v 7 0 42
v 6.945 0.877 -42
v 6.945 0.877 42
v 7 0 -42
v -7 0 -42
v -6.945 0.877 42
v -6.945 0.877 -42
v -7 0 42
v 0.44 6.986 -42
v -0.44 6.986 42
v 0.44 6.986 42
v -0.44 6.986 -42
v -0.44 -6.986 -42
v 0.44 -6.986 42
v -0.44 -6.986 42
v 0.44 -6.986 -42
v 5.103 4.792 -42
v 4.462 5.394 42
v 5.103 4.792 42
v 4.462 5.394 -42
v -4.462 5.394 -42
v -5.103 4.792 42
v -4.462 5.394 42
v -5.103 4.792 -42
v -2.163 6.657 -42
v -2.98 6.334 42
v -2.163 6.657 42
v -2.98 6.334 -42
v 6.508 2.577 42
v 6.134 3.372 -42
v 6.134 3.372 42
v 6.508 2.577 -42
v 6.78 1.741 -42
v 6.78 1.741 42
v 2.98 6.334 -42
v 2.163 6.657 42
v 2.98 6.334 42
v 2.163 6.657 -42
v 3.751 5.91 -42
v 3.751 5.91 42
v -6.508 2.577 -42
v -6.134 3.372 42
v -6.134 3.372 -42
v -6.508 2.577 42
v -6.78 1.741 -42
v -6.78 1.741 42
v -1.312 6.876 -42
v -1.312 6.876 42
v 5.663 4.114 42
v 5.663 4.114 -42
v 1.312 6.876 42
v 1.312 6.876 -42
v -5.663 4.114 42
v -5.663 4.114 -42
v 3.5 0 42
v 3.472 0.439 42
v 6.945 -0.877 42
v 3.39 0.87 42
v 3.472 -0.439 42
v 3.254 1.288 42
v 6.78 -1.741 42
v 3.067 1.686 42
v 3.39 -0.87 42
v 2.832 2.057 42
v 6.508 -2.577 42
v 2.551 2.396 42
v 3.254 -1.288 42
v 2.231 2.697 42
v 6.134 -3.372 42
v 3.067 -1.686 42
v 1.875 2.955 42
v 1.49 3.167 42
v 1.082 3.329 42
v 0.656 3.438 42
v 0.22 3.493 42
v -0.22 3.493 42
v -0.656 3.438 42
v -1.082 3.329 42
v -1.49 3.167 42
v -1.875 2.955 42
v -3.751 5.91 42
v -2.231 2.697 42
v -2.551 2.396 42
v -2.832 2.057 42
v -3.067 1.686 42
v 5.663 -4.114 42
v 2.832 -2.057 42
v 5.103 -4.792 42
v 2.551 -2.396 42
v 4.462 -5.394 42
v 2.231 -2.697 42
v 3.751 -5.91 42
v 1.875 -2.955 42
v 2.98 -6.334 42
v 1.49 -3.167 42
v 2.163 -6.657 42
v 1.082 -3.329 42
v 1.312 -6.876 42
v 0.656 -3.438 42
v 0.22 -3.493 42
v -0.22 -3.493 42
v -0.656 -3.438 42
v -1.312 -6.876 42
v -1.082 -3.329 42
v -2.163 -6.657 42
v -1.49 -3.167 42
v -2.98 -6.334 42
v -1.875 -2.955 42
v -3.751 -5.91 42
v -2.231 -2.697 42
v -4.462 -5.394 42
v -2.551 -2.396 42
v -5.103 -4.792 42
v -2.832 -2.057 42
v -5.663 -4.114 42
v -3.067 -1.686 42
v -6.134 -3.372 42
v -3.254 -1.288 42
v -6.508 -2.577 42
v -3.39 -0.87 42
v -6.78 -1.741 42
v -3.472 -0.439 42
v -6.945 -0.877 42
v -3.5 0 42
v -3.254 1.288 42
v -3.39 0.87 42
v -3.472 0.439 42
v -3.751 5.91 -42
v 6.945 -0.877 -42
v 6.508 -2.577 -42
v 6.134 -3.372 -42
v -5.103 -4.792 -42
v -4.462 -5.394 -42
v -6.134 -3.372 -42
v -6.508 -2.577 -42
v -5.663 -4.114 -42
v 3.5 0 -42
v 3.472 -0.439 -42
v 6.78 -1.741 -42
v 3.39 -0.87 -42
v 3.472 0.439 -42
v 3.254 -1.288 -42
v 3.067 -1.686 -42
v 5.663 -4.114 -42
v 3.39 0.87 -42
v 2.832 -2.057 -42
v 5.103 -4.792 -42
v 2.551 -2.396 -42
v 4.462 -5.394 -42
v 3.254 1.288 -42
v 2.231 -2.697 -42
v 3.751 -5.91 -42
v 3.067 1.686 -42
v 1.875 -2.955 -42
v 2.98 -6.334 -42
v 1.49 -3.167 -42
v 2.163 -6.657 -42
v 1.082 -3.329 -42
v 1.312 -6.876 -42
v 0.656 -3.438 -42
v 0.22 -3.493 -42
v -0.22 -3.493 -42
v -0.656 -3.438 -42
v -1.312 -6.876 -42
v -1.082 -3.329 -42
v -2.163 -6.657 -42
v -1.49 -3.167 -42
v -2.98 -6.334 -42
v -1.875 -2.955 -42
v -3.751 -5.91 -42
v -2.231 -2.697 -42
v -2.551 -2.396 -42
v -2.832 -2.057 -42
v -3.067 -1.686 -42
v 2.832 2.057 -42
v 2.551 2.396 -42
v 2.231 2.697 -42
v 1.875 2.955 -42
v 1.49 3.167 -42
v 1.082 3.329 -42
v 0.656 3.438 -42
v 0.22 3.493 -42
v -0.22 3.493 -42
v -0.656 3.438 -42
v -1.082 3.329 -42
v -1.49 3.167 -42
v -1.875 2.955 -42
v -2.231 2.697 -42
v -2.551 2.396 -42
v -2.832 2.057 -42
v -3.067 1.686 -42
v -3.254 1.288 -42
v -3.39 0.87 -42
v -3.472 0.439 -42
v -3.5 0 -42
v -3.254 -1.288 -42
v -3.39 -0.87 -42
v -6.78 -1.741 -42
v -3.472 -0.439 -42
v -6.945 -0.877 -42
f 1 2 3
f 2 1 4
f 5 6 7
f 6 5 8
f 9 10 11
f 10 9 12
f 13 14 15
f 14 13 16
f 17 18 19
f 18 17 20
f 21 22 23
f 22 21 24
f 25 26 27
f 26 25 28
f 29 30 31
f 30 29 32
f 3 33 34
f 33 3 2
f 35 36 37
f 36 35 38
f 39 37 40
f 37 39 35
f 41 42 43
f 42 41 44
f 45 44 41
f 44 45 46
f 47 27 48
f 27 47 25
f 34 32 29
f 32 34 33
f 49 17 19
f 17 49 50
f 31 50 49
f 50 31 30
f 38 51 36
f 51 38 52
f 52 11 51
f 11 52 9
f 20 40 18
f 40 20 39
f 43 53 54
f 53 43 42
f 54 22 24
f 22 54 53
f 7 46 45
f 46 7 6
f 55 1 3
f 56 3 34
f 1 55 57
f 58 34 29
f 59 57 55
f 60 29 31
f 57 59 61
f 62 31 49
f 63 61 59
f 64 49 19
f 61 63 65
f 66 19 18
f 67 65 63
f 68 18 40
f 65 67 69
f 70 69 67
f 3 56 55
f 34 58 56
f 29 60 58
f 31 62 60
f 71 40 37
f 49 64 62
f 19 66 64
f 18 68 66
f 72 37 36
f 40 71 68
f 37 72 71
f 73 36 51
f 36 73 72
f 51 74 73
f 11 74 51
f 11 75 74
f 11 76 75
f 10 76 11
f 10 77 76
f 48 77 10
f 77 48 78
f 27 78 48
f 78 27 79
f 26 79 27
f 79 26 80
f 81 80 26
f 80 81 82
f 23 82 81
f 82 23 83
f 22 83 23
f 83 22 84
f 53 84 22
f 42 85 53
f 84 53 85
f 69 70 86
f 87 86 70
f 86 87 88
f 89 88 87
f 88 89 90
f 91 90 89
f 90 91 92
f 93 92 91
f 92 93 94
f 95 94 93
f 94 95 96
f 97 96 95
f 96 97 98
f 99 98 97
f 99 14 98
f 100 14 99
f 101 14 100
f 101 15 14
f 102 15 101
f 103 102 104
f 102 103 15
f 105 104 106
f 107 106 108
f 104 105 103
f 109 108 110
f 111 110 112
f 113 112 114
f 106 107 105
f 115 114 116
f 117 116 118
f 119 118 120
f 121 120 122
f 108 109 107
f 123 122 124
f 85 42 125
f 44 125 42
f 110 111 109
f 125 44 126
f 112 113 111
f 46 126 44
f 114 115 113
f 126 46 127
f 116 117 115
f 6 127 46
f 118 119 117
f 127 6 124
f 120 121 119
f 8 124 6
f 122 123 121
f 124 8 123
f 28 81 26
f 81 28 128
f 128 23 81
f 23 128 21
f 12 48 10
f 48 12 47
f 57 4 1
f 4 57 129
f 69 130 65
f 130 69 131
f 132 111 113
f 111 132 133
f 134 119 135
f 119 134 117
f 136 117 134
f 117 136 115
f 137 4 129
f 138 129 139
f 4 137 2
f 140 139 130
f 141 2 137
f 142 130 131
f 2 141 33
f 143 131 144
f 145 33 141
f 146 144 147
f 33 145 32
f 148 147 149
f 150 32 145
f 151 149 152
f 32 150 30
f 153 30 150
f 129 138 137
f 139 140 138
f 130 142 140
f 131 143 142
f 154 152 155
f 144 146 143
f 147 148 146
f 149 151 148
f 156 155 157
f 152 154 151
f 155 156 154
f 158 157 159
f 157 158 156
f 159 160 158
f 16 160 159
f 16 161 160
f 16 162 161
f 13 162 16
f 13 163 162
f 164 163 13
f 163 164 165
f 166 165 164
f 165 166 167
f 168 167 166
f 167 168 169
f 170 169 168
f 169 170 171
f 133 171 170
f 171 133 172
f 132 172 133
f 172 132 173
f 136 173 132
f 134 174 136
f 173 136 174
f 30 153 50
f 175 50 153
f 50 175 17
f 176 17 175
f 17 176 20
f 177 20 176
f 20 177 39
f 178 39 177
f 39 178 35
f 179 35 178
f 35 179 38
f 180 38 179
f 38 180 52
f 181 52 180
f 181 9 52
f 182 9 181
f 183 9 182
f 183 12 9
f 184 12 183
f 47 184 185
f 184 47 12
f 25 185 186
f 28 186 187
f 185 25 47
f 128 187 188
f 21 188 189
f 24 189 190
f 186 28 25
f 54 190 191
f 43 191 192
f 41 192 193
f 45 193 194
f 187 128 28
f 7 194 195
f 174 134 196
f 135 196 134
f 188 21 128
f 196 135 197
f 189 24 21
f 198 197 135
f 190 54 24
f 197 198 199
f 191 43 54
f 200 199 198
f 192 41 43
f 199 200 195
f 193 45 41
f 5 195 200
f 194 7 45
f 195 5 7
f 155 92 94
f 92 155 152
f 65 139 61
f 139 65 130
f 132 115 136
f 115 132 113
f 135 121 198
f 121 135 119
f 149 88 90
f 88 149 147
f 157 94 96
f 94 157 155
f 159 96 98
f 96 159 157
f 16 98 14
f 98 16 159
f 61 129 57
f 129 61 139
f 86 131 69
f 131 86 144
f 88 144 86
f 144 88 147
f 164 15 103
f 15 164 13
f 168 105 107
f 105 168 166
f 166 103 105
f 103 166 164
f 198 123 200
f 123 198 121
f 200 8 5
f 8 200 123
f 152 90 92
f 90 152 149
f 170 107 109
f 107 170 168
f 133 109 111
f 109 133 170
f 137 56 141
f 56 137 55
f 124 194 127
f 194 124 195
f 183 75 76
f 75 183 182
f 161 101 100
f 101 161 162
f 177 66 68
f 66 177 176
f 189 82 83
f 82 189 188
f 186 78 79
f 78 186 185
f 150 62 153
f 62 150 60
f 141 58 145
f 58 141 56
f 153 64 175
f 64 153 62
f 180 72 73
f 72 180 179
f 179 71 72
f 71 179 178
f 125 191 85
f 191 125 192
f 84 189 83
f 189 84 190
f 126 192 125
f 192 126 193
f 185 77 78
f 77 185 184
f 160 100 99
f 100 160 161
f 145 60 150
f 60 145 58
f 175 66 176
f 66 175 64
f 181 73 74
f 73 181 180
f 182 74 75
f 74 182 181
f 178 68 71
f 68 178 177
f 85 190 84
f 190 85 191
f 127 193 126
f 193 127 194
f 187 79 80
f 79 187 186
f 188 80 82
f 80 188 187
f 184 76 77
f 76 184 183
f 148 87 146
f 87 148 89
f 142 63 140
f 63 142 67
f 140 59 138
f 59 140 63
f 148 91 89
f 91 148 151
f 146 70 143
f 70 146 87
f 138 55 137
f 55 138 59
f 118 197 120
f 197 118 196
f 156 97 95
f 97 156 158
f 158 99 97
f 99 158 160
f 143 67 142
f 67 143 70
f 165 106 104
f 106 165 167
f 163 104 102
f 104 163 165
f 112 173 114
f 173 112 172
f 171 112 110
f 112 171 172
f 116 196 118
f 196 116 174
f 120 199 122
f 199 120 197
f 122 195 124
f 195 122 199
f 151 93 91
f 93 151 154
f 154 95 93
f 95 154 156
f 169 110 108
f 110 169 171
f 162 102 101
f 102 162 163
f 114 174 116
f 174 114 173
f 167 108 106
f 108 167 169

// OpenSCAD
$fn = 50;


difference() {
	union() {
		translate(v = [0, 0, -42.0000000000]) {
			cylinder(h = 84, r = 7.0000000000);
		}
	}
	union() {
		translate(v = [0, 0, -100.0000000000]) {
			cylinder(h = 200, r = 3.5000000000);
		}
	}
}
